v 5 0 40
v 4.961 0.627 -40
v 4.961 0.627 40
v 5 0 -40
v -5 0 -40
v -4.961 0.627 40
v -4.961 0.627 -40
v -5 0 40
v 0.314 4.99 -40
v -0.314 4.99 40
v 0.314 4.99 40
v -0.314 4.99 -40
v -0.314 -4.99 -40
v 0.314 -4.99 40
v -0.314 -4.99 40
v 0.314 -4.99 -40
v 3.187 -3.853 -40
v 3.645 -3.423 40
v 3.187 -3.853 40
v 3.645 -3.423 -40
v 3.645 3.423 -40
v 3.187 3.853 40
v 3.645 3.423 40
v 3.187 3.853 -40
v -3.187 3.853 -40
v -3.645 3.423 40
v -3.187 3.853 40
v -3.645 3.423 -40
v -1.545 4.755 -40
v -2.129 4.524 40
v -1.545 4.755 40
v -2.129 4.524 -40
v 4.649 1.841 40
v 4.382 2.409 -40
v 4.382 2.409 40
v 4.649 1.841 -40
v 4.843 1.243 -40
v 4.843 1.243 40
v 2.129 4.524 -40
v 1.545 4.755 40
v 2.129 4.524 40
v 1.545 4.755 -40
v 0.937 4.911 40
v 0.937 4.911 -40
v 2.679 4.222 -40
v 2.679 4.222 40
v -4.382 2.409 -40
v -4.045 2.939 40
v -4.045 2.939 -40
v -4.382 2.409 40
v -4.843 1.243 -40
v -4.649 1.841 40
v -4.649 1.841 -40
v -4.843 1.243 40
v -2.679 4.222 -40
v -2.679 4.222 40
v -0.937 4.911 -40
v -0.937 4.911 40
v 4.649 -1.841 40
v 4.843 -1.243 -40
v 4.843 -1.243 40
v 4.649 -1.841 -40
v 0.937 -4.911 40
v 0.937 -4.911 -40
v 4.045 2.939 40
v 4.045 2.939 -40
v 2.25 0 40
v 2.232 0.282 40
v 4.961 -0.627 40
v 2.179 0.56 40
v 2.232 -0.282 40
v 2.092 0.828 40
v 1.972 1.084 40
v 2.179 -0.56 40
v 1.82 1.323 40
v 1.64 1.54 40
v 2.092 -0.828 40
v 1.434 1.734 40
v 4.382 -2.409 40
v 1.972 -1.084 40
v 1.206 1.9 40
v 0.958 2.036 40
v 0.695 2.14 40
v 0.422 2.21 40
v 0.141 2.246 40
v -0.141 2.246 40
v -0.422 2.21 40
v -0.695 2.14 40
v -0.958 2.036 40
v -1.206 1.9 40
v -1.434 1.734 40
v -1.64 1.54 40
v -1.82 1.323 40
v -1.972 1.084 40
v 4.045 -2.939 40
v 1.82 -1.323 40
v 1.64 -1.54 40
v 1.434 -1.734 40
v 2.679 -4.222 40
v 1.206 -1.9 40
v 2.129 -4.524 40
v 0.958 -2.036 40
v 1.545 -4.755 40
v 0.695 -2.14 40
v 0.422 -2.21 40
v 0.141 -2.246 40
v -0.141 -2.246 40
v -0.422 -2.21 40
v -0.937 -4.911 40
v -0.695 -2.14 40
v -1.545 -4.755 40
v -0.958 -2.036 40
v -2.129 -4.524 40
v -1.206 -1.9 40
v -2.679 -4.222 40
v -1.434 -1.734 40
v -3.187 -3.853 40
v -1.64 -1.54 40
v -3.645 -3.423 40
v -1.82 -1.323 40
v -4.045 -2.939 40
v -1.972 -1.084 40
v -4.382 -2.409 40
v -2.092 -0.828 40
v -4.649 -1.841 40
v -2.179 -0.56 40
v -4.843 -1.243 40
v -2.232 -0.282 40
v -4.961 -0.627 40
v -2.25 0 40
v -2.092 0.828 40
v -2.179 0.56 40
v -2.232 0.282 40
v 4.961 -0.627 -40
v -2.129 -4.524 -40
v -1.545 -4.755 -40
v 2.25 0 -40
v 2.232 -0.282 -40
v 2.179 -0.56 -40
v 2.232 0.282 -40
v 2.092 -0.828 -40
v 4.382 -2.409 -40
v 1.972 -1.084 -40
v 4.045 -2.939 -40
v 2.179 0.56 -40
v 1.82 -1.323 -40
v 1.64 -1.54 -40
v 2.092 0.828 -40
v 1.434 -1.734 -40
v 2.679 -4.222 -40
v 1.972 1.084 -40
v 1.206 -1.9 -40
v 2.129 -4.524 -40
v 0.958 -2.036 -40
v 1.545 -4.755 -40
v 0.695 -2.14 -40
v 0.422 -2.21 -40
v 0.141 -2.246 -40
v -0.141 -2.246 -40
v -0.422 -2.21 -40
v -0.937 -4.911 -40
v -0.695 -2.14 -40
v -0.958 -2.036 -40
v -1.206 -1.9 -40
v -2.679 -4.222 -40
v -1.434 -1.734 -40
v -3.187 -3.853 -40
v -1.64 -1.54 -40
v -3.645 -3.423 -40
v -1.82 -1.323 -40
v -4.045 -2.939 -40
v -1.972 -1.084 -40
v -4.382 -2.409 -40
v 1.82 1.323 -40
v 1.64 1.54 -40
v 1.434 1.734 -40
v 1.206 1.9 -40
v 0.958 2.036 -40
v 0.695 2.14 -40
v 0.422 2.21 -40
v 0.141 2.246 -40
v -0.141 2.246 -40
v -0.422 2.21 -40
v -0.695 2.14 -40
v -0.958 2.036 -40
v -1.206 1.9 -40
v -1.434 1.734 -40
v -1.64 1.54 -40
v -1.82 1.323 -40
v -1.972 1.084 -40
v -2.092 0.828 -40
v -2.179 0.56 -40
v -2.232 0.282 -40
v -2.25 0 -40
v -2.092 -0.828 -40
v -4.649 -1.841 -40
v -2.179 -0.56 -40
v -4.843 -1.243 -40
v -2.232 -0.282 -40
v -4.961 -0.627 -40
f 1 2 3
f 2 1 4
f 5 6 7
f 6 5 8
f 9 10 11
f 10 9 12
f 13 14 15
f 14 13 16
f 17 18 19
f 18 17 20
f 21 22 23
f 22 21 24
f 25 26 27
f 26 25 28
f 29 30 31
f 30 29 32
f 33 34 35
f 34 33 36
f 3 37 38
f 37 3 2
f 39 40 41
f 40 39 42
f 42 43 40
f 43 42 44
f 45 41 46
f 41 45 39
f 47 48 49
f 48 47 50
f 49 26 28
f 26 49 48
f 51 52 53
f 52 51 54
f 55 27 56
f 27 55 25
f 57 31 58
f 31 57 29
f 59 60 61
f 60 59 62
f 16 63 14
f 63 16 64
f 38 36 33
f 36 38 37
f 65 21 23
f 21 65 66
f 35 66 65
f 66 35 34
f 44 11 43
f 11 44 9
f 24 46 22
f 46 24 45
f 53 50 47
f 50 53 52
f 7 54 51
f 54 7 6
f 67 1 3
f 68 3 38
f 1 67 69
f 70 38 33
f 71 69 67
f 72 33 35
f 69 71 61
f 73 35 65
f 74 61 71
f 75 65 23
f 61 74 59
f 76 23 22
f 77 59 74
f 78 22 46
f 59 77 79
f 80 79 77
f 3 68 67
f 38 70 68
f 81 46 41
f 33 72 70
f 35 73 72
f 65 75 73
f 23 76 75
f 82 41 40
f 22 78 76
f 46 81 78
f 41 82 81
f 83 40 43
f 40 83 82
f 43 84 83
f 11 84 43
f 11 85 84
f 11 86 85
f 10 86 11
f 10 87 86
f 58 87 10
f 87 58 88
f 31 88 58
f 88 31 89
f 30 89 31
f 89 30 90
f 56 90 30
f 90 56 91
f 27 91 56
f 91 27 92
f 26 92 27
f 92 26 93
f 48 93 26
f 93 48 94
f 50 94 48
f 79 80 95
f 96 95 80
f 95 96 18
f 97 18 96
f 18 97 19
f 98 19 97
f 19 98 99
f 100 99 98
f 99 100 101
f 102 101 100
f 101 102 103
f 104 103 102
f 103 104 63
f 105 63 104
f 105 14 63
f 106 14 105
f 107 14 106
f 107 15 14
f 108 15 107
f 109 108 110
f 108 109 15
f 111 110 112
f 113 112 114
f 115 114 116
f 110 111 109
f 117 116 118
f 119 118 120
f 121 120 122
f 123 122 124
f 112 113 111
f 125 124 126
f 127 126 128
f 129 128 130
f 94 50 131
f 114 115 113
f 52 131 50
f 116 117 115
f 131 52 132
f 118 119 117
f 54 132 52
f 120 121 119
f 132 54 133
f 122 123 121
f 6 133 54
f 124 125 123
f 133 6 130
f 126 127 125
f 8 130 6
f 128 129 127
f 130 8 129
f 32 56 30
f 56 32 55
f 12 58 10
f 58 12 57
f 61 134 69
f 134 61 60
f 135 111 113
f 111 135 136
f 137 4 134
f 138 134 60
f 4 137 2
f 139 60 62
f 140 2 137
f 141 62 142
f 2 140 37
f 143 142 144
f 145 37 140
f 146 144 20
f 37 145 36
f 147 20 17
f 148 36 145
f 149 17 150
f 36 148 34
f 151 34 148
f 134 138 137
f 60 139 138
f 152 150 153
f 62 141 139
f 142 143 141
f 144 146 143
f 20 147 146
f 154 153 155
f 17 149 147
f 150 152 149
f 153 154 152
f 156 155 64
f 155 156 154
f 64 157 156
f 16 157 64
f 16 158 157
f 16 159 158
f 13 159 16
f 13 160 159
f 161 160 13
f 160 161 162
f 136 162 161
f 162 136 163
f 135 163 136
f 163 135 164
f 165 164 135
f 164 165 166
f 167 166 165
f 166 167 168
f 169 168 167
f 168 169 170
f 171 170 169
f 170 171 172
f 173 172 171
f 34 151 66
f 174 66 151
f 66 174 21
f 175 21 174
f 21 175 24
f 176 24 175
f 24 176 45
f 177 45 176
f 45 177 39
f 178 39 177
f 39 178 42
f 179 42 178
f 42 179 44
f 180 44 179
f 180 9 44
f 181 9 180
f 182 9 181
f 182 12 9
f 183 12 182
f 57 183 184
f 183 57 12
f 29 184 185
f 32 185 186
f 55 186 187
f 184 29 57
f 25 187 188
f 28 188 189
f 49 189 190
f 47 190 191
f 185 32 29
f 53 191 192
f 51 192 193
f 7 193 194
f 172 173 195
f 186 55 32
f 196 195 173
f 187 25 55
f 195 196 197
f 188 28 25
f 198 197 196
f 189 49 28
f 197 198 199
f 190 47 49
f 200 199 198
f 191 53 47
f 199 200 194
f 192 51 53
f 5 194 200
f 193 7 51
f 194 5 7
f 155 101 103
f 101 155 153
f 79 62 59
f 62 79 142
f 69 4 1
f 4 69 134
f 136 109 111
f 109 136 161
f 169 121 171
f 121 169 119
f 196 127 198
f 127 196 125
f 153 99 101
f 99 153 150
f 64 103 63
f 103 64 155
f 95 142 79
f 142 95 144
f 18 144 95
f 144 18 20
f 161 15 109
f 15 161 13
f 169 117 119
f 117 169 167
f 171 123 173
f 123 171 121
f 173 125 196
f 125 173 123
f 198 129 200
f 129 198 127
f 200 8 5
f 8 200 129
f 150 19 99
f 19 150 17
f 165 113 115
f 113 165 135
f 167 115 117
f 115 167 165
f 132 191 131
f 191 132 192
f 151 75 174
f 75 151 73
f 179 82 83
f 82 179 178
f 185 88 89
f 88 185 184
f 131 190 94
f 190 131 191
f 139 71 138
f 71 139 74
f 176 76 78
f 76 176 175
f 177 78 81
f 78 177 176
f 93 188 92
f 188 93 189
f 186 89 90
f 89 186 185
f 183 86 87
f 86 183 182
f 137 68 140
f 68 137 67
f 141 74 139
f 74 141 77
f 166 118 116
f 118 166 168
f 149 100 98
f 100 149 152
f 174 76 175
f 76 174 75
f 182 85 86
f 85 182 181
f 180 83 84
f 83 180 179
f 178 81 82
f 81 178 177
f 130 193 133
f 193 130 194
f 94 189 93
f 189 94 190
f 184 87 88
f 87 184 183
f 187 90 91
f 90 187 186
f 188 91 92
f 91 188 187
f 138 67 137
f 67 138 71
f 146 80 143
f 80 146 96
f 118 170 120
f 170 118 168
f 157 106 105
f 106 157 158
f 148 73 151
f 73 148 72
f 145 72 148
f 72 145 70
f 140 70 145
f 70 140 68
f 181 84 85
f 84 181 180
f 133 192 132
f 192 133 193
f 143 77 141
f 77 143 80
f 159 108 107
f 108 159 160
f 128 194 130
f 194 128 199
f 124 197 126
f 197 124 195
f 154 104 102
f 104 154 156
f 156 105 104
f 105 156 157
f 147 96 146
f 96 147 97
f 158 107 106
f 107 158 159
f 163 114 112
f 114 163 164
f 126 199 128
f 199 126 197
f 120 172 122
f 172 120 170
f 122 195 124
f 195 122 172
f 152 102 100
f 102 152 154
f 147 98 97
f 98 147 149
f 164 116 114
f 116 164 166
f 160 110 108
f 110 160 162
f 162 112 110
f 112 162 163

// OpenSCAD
$fn = 50;


difference() {
	union() {
		translate(v = [0, 0, -40.0000000000]) {
			cylinder(h = 80, r = 5.0000000000);
		}
	}
	union() {
		translate(v = [0, 0, -100.0000000000]) {
			cylinder(h = 200, r = 2.2500000000);
		}
	}
}
